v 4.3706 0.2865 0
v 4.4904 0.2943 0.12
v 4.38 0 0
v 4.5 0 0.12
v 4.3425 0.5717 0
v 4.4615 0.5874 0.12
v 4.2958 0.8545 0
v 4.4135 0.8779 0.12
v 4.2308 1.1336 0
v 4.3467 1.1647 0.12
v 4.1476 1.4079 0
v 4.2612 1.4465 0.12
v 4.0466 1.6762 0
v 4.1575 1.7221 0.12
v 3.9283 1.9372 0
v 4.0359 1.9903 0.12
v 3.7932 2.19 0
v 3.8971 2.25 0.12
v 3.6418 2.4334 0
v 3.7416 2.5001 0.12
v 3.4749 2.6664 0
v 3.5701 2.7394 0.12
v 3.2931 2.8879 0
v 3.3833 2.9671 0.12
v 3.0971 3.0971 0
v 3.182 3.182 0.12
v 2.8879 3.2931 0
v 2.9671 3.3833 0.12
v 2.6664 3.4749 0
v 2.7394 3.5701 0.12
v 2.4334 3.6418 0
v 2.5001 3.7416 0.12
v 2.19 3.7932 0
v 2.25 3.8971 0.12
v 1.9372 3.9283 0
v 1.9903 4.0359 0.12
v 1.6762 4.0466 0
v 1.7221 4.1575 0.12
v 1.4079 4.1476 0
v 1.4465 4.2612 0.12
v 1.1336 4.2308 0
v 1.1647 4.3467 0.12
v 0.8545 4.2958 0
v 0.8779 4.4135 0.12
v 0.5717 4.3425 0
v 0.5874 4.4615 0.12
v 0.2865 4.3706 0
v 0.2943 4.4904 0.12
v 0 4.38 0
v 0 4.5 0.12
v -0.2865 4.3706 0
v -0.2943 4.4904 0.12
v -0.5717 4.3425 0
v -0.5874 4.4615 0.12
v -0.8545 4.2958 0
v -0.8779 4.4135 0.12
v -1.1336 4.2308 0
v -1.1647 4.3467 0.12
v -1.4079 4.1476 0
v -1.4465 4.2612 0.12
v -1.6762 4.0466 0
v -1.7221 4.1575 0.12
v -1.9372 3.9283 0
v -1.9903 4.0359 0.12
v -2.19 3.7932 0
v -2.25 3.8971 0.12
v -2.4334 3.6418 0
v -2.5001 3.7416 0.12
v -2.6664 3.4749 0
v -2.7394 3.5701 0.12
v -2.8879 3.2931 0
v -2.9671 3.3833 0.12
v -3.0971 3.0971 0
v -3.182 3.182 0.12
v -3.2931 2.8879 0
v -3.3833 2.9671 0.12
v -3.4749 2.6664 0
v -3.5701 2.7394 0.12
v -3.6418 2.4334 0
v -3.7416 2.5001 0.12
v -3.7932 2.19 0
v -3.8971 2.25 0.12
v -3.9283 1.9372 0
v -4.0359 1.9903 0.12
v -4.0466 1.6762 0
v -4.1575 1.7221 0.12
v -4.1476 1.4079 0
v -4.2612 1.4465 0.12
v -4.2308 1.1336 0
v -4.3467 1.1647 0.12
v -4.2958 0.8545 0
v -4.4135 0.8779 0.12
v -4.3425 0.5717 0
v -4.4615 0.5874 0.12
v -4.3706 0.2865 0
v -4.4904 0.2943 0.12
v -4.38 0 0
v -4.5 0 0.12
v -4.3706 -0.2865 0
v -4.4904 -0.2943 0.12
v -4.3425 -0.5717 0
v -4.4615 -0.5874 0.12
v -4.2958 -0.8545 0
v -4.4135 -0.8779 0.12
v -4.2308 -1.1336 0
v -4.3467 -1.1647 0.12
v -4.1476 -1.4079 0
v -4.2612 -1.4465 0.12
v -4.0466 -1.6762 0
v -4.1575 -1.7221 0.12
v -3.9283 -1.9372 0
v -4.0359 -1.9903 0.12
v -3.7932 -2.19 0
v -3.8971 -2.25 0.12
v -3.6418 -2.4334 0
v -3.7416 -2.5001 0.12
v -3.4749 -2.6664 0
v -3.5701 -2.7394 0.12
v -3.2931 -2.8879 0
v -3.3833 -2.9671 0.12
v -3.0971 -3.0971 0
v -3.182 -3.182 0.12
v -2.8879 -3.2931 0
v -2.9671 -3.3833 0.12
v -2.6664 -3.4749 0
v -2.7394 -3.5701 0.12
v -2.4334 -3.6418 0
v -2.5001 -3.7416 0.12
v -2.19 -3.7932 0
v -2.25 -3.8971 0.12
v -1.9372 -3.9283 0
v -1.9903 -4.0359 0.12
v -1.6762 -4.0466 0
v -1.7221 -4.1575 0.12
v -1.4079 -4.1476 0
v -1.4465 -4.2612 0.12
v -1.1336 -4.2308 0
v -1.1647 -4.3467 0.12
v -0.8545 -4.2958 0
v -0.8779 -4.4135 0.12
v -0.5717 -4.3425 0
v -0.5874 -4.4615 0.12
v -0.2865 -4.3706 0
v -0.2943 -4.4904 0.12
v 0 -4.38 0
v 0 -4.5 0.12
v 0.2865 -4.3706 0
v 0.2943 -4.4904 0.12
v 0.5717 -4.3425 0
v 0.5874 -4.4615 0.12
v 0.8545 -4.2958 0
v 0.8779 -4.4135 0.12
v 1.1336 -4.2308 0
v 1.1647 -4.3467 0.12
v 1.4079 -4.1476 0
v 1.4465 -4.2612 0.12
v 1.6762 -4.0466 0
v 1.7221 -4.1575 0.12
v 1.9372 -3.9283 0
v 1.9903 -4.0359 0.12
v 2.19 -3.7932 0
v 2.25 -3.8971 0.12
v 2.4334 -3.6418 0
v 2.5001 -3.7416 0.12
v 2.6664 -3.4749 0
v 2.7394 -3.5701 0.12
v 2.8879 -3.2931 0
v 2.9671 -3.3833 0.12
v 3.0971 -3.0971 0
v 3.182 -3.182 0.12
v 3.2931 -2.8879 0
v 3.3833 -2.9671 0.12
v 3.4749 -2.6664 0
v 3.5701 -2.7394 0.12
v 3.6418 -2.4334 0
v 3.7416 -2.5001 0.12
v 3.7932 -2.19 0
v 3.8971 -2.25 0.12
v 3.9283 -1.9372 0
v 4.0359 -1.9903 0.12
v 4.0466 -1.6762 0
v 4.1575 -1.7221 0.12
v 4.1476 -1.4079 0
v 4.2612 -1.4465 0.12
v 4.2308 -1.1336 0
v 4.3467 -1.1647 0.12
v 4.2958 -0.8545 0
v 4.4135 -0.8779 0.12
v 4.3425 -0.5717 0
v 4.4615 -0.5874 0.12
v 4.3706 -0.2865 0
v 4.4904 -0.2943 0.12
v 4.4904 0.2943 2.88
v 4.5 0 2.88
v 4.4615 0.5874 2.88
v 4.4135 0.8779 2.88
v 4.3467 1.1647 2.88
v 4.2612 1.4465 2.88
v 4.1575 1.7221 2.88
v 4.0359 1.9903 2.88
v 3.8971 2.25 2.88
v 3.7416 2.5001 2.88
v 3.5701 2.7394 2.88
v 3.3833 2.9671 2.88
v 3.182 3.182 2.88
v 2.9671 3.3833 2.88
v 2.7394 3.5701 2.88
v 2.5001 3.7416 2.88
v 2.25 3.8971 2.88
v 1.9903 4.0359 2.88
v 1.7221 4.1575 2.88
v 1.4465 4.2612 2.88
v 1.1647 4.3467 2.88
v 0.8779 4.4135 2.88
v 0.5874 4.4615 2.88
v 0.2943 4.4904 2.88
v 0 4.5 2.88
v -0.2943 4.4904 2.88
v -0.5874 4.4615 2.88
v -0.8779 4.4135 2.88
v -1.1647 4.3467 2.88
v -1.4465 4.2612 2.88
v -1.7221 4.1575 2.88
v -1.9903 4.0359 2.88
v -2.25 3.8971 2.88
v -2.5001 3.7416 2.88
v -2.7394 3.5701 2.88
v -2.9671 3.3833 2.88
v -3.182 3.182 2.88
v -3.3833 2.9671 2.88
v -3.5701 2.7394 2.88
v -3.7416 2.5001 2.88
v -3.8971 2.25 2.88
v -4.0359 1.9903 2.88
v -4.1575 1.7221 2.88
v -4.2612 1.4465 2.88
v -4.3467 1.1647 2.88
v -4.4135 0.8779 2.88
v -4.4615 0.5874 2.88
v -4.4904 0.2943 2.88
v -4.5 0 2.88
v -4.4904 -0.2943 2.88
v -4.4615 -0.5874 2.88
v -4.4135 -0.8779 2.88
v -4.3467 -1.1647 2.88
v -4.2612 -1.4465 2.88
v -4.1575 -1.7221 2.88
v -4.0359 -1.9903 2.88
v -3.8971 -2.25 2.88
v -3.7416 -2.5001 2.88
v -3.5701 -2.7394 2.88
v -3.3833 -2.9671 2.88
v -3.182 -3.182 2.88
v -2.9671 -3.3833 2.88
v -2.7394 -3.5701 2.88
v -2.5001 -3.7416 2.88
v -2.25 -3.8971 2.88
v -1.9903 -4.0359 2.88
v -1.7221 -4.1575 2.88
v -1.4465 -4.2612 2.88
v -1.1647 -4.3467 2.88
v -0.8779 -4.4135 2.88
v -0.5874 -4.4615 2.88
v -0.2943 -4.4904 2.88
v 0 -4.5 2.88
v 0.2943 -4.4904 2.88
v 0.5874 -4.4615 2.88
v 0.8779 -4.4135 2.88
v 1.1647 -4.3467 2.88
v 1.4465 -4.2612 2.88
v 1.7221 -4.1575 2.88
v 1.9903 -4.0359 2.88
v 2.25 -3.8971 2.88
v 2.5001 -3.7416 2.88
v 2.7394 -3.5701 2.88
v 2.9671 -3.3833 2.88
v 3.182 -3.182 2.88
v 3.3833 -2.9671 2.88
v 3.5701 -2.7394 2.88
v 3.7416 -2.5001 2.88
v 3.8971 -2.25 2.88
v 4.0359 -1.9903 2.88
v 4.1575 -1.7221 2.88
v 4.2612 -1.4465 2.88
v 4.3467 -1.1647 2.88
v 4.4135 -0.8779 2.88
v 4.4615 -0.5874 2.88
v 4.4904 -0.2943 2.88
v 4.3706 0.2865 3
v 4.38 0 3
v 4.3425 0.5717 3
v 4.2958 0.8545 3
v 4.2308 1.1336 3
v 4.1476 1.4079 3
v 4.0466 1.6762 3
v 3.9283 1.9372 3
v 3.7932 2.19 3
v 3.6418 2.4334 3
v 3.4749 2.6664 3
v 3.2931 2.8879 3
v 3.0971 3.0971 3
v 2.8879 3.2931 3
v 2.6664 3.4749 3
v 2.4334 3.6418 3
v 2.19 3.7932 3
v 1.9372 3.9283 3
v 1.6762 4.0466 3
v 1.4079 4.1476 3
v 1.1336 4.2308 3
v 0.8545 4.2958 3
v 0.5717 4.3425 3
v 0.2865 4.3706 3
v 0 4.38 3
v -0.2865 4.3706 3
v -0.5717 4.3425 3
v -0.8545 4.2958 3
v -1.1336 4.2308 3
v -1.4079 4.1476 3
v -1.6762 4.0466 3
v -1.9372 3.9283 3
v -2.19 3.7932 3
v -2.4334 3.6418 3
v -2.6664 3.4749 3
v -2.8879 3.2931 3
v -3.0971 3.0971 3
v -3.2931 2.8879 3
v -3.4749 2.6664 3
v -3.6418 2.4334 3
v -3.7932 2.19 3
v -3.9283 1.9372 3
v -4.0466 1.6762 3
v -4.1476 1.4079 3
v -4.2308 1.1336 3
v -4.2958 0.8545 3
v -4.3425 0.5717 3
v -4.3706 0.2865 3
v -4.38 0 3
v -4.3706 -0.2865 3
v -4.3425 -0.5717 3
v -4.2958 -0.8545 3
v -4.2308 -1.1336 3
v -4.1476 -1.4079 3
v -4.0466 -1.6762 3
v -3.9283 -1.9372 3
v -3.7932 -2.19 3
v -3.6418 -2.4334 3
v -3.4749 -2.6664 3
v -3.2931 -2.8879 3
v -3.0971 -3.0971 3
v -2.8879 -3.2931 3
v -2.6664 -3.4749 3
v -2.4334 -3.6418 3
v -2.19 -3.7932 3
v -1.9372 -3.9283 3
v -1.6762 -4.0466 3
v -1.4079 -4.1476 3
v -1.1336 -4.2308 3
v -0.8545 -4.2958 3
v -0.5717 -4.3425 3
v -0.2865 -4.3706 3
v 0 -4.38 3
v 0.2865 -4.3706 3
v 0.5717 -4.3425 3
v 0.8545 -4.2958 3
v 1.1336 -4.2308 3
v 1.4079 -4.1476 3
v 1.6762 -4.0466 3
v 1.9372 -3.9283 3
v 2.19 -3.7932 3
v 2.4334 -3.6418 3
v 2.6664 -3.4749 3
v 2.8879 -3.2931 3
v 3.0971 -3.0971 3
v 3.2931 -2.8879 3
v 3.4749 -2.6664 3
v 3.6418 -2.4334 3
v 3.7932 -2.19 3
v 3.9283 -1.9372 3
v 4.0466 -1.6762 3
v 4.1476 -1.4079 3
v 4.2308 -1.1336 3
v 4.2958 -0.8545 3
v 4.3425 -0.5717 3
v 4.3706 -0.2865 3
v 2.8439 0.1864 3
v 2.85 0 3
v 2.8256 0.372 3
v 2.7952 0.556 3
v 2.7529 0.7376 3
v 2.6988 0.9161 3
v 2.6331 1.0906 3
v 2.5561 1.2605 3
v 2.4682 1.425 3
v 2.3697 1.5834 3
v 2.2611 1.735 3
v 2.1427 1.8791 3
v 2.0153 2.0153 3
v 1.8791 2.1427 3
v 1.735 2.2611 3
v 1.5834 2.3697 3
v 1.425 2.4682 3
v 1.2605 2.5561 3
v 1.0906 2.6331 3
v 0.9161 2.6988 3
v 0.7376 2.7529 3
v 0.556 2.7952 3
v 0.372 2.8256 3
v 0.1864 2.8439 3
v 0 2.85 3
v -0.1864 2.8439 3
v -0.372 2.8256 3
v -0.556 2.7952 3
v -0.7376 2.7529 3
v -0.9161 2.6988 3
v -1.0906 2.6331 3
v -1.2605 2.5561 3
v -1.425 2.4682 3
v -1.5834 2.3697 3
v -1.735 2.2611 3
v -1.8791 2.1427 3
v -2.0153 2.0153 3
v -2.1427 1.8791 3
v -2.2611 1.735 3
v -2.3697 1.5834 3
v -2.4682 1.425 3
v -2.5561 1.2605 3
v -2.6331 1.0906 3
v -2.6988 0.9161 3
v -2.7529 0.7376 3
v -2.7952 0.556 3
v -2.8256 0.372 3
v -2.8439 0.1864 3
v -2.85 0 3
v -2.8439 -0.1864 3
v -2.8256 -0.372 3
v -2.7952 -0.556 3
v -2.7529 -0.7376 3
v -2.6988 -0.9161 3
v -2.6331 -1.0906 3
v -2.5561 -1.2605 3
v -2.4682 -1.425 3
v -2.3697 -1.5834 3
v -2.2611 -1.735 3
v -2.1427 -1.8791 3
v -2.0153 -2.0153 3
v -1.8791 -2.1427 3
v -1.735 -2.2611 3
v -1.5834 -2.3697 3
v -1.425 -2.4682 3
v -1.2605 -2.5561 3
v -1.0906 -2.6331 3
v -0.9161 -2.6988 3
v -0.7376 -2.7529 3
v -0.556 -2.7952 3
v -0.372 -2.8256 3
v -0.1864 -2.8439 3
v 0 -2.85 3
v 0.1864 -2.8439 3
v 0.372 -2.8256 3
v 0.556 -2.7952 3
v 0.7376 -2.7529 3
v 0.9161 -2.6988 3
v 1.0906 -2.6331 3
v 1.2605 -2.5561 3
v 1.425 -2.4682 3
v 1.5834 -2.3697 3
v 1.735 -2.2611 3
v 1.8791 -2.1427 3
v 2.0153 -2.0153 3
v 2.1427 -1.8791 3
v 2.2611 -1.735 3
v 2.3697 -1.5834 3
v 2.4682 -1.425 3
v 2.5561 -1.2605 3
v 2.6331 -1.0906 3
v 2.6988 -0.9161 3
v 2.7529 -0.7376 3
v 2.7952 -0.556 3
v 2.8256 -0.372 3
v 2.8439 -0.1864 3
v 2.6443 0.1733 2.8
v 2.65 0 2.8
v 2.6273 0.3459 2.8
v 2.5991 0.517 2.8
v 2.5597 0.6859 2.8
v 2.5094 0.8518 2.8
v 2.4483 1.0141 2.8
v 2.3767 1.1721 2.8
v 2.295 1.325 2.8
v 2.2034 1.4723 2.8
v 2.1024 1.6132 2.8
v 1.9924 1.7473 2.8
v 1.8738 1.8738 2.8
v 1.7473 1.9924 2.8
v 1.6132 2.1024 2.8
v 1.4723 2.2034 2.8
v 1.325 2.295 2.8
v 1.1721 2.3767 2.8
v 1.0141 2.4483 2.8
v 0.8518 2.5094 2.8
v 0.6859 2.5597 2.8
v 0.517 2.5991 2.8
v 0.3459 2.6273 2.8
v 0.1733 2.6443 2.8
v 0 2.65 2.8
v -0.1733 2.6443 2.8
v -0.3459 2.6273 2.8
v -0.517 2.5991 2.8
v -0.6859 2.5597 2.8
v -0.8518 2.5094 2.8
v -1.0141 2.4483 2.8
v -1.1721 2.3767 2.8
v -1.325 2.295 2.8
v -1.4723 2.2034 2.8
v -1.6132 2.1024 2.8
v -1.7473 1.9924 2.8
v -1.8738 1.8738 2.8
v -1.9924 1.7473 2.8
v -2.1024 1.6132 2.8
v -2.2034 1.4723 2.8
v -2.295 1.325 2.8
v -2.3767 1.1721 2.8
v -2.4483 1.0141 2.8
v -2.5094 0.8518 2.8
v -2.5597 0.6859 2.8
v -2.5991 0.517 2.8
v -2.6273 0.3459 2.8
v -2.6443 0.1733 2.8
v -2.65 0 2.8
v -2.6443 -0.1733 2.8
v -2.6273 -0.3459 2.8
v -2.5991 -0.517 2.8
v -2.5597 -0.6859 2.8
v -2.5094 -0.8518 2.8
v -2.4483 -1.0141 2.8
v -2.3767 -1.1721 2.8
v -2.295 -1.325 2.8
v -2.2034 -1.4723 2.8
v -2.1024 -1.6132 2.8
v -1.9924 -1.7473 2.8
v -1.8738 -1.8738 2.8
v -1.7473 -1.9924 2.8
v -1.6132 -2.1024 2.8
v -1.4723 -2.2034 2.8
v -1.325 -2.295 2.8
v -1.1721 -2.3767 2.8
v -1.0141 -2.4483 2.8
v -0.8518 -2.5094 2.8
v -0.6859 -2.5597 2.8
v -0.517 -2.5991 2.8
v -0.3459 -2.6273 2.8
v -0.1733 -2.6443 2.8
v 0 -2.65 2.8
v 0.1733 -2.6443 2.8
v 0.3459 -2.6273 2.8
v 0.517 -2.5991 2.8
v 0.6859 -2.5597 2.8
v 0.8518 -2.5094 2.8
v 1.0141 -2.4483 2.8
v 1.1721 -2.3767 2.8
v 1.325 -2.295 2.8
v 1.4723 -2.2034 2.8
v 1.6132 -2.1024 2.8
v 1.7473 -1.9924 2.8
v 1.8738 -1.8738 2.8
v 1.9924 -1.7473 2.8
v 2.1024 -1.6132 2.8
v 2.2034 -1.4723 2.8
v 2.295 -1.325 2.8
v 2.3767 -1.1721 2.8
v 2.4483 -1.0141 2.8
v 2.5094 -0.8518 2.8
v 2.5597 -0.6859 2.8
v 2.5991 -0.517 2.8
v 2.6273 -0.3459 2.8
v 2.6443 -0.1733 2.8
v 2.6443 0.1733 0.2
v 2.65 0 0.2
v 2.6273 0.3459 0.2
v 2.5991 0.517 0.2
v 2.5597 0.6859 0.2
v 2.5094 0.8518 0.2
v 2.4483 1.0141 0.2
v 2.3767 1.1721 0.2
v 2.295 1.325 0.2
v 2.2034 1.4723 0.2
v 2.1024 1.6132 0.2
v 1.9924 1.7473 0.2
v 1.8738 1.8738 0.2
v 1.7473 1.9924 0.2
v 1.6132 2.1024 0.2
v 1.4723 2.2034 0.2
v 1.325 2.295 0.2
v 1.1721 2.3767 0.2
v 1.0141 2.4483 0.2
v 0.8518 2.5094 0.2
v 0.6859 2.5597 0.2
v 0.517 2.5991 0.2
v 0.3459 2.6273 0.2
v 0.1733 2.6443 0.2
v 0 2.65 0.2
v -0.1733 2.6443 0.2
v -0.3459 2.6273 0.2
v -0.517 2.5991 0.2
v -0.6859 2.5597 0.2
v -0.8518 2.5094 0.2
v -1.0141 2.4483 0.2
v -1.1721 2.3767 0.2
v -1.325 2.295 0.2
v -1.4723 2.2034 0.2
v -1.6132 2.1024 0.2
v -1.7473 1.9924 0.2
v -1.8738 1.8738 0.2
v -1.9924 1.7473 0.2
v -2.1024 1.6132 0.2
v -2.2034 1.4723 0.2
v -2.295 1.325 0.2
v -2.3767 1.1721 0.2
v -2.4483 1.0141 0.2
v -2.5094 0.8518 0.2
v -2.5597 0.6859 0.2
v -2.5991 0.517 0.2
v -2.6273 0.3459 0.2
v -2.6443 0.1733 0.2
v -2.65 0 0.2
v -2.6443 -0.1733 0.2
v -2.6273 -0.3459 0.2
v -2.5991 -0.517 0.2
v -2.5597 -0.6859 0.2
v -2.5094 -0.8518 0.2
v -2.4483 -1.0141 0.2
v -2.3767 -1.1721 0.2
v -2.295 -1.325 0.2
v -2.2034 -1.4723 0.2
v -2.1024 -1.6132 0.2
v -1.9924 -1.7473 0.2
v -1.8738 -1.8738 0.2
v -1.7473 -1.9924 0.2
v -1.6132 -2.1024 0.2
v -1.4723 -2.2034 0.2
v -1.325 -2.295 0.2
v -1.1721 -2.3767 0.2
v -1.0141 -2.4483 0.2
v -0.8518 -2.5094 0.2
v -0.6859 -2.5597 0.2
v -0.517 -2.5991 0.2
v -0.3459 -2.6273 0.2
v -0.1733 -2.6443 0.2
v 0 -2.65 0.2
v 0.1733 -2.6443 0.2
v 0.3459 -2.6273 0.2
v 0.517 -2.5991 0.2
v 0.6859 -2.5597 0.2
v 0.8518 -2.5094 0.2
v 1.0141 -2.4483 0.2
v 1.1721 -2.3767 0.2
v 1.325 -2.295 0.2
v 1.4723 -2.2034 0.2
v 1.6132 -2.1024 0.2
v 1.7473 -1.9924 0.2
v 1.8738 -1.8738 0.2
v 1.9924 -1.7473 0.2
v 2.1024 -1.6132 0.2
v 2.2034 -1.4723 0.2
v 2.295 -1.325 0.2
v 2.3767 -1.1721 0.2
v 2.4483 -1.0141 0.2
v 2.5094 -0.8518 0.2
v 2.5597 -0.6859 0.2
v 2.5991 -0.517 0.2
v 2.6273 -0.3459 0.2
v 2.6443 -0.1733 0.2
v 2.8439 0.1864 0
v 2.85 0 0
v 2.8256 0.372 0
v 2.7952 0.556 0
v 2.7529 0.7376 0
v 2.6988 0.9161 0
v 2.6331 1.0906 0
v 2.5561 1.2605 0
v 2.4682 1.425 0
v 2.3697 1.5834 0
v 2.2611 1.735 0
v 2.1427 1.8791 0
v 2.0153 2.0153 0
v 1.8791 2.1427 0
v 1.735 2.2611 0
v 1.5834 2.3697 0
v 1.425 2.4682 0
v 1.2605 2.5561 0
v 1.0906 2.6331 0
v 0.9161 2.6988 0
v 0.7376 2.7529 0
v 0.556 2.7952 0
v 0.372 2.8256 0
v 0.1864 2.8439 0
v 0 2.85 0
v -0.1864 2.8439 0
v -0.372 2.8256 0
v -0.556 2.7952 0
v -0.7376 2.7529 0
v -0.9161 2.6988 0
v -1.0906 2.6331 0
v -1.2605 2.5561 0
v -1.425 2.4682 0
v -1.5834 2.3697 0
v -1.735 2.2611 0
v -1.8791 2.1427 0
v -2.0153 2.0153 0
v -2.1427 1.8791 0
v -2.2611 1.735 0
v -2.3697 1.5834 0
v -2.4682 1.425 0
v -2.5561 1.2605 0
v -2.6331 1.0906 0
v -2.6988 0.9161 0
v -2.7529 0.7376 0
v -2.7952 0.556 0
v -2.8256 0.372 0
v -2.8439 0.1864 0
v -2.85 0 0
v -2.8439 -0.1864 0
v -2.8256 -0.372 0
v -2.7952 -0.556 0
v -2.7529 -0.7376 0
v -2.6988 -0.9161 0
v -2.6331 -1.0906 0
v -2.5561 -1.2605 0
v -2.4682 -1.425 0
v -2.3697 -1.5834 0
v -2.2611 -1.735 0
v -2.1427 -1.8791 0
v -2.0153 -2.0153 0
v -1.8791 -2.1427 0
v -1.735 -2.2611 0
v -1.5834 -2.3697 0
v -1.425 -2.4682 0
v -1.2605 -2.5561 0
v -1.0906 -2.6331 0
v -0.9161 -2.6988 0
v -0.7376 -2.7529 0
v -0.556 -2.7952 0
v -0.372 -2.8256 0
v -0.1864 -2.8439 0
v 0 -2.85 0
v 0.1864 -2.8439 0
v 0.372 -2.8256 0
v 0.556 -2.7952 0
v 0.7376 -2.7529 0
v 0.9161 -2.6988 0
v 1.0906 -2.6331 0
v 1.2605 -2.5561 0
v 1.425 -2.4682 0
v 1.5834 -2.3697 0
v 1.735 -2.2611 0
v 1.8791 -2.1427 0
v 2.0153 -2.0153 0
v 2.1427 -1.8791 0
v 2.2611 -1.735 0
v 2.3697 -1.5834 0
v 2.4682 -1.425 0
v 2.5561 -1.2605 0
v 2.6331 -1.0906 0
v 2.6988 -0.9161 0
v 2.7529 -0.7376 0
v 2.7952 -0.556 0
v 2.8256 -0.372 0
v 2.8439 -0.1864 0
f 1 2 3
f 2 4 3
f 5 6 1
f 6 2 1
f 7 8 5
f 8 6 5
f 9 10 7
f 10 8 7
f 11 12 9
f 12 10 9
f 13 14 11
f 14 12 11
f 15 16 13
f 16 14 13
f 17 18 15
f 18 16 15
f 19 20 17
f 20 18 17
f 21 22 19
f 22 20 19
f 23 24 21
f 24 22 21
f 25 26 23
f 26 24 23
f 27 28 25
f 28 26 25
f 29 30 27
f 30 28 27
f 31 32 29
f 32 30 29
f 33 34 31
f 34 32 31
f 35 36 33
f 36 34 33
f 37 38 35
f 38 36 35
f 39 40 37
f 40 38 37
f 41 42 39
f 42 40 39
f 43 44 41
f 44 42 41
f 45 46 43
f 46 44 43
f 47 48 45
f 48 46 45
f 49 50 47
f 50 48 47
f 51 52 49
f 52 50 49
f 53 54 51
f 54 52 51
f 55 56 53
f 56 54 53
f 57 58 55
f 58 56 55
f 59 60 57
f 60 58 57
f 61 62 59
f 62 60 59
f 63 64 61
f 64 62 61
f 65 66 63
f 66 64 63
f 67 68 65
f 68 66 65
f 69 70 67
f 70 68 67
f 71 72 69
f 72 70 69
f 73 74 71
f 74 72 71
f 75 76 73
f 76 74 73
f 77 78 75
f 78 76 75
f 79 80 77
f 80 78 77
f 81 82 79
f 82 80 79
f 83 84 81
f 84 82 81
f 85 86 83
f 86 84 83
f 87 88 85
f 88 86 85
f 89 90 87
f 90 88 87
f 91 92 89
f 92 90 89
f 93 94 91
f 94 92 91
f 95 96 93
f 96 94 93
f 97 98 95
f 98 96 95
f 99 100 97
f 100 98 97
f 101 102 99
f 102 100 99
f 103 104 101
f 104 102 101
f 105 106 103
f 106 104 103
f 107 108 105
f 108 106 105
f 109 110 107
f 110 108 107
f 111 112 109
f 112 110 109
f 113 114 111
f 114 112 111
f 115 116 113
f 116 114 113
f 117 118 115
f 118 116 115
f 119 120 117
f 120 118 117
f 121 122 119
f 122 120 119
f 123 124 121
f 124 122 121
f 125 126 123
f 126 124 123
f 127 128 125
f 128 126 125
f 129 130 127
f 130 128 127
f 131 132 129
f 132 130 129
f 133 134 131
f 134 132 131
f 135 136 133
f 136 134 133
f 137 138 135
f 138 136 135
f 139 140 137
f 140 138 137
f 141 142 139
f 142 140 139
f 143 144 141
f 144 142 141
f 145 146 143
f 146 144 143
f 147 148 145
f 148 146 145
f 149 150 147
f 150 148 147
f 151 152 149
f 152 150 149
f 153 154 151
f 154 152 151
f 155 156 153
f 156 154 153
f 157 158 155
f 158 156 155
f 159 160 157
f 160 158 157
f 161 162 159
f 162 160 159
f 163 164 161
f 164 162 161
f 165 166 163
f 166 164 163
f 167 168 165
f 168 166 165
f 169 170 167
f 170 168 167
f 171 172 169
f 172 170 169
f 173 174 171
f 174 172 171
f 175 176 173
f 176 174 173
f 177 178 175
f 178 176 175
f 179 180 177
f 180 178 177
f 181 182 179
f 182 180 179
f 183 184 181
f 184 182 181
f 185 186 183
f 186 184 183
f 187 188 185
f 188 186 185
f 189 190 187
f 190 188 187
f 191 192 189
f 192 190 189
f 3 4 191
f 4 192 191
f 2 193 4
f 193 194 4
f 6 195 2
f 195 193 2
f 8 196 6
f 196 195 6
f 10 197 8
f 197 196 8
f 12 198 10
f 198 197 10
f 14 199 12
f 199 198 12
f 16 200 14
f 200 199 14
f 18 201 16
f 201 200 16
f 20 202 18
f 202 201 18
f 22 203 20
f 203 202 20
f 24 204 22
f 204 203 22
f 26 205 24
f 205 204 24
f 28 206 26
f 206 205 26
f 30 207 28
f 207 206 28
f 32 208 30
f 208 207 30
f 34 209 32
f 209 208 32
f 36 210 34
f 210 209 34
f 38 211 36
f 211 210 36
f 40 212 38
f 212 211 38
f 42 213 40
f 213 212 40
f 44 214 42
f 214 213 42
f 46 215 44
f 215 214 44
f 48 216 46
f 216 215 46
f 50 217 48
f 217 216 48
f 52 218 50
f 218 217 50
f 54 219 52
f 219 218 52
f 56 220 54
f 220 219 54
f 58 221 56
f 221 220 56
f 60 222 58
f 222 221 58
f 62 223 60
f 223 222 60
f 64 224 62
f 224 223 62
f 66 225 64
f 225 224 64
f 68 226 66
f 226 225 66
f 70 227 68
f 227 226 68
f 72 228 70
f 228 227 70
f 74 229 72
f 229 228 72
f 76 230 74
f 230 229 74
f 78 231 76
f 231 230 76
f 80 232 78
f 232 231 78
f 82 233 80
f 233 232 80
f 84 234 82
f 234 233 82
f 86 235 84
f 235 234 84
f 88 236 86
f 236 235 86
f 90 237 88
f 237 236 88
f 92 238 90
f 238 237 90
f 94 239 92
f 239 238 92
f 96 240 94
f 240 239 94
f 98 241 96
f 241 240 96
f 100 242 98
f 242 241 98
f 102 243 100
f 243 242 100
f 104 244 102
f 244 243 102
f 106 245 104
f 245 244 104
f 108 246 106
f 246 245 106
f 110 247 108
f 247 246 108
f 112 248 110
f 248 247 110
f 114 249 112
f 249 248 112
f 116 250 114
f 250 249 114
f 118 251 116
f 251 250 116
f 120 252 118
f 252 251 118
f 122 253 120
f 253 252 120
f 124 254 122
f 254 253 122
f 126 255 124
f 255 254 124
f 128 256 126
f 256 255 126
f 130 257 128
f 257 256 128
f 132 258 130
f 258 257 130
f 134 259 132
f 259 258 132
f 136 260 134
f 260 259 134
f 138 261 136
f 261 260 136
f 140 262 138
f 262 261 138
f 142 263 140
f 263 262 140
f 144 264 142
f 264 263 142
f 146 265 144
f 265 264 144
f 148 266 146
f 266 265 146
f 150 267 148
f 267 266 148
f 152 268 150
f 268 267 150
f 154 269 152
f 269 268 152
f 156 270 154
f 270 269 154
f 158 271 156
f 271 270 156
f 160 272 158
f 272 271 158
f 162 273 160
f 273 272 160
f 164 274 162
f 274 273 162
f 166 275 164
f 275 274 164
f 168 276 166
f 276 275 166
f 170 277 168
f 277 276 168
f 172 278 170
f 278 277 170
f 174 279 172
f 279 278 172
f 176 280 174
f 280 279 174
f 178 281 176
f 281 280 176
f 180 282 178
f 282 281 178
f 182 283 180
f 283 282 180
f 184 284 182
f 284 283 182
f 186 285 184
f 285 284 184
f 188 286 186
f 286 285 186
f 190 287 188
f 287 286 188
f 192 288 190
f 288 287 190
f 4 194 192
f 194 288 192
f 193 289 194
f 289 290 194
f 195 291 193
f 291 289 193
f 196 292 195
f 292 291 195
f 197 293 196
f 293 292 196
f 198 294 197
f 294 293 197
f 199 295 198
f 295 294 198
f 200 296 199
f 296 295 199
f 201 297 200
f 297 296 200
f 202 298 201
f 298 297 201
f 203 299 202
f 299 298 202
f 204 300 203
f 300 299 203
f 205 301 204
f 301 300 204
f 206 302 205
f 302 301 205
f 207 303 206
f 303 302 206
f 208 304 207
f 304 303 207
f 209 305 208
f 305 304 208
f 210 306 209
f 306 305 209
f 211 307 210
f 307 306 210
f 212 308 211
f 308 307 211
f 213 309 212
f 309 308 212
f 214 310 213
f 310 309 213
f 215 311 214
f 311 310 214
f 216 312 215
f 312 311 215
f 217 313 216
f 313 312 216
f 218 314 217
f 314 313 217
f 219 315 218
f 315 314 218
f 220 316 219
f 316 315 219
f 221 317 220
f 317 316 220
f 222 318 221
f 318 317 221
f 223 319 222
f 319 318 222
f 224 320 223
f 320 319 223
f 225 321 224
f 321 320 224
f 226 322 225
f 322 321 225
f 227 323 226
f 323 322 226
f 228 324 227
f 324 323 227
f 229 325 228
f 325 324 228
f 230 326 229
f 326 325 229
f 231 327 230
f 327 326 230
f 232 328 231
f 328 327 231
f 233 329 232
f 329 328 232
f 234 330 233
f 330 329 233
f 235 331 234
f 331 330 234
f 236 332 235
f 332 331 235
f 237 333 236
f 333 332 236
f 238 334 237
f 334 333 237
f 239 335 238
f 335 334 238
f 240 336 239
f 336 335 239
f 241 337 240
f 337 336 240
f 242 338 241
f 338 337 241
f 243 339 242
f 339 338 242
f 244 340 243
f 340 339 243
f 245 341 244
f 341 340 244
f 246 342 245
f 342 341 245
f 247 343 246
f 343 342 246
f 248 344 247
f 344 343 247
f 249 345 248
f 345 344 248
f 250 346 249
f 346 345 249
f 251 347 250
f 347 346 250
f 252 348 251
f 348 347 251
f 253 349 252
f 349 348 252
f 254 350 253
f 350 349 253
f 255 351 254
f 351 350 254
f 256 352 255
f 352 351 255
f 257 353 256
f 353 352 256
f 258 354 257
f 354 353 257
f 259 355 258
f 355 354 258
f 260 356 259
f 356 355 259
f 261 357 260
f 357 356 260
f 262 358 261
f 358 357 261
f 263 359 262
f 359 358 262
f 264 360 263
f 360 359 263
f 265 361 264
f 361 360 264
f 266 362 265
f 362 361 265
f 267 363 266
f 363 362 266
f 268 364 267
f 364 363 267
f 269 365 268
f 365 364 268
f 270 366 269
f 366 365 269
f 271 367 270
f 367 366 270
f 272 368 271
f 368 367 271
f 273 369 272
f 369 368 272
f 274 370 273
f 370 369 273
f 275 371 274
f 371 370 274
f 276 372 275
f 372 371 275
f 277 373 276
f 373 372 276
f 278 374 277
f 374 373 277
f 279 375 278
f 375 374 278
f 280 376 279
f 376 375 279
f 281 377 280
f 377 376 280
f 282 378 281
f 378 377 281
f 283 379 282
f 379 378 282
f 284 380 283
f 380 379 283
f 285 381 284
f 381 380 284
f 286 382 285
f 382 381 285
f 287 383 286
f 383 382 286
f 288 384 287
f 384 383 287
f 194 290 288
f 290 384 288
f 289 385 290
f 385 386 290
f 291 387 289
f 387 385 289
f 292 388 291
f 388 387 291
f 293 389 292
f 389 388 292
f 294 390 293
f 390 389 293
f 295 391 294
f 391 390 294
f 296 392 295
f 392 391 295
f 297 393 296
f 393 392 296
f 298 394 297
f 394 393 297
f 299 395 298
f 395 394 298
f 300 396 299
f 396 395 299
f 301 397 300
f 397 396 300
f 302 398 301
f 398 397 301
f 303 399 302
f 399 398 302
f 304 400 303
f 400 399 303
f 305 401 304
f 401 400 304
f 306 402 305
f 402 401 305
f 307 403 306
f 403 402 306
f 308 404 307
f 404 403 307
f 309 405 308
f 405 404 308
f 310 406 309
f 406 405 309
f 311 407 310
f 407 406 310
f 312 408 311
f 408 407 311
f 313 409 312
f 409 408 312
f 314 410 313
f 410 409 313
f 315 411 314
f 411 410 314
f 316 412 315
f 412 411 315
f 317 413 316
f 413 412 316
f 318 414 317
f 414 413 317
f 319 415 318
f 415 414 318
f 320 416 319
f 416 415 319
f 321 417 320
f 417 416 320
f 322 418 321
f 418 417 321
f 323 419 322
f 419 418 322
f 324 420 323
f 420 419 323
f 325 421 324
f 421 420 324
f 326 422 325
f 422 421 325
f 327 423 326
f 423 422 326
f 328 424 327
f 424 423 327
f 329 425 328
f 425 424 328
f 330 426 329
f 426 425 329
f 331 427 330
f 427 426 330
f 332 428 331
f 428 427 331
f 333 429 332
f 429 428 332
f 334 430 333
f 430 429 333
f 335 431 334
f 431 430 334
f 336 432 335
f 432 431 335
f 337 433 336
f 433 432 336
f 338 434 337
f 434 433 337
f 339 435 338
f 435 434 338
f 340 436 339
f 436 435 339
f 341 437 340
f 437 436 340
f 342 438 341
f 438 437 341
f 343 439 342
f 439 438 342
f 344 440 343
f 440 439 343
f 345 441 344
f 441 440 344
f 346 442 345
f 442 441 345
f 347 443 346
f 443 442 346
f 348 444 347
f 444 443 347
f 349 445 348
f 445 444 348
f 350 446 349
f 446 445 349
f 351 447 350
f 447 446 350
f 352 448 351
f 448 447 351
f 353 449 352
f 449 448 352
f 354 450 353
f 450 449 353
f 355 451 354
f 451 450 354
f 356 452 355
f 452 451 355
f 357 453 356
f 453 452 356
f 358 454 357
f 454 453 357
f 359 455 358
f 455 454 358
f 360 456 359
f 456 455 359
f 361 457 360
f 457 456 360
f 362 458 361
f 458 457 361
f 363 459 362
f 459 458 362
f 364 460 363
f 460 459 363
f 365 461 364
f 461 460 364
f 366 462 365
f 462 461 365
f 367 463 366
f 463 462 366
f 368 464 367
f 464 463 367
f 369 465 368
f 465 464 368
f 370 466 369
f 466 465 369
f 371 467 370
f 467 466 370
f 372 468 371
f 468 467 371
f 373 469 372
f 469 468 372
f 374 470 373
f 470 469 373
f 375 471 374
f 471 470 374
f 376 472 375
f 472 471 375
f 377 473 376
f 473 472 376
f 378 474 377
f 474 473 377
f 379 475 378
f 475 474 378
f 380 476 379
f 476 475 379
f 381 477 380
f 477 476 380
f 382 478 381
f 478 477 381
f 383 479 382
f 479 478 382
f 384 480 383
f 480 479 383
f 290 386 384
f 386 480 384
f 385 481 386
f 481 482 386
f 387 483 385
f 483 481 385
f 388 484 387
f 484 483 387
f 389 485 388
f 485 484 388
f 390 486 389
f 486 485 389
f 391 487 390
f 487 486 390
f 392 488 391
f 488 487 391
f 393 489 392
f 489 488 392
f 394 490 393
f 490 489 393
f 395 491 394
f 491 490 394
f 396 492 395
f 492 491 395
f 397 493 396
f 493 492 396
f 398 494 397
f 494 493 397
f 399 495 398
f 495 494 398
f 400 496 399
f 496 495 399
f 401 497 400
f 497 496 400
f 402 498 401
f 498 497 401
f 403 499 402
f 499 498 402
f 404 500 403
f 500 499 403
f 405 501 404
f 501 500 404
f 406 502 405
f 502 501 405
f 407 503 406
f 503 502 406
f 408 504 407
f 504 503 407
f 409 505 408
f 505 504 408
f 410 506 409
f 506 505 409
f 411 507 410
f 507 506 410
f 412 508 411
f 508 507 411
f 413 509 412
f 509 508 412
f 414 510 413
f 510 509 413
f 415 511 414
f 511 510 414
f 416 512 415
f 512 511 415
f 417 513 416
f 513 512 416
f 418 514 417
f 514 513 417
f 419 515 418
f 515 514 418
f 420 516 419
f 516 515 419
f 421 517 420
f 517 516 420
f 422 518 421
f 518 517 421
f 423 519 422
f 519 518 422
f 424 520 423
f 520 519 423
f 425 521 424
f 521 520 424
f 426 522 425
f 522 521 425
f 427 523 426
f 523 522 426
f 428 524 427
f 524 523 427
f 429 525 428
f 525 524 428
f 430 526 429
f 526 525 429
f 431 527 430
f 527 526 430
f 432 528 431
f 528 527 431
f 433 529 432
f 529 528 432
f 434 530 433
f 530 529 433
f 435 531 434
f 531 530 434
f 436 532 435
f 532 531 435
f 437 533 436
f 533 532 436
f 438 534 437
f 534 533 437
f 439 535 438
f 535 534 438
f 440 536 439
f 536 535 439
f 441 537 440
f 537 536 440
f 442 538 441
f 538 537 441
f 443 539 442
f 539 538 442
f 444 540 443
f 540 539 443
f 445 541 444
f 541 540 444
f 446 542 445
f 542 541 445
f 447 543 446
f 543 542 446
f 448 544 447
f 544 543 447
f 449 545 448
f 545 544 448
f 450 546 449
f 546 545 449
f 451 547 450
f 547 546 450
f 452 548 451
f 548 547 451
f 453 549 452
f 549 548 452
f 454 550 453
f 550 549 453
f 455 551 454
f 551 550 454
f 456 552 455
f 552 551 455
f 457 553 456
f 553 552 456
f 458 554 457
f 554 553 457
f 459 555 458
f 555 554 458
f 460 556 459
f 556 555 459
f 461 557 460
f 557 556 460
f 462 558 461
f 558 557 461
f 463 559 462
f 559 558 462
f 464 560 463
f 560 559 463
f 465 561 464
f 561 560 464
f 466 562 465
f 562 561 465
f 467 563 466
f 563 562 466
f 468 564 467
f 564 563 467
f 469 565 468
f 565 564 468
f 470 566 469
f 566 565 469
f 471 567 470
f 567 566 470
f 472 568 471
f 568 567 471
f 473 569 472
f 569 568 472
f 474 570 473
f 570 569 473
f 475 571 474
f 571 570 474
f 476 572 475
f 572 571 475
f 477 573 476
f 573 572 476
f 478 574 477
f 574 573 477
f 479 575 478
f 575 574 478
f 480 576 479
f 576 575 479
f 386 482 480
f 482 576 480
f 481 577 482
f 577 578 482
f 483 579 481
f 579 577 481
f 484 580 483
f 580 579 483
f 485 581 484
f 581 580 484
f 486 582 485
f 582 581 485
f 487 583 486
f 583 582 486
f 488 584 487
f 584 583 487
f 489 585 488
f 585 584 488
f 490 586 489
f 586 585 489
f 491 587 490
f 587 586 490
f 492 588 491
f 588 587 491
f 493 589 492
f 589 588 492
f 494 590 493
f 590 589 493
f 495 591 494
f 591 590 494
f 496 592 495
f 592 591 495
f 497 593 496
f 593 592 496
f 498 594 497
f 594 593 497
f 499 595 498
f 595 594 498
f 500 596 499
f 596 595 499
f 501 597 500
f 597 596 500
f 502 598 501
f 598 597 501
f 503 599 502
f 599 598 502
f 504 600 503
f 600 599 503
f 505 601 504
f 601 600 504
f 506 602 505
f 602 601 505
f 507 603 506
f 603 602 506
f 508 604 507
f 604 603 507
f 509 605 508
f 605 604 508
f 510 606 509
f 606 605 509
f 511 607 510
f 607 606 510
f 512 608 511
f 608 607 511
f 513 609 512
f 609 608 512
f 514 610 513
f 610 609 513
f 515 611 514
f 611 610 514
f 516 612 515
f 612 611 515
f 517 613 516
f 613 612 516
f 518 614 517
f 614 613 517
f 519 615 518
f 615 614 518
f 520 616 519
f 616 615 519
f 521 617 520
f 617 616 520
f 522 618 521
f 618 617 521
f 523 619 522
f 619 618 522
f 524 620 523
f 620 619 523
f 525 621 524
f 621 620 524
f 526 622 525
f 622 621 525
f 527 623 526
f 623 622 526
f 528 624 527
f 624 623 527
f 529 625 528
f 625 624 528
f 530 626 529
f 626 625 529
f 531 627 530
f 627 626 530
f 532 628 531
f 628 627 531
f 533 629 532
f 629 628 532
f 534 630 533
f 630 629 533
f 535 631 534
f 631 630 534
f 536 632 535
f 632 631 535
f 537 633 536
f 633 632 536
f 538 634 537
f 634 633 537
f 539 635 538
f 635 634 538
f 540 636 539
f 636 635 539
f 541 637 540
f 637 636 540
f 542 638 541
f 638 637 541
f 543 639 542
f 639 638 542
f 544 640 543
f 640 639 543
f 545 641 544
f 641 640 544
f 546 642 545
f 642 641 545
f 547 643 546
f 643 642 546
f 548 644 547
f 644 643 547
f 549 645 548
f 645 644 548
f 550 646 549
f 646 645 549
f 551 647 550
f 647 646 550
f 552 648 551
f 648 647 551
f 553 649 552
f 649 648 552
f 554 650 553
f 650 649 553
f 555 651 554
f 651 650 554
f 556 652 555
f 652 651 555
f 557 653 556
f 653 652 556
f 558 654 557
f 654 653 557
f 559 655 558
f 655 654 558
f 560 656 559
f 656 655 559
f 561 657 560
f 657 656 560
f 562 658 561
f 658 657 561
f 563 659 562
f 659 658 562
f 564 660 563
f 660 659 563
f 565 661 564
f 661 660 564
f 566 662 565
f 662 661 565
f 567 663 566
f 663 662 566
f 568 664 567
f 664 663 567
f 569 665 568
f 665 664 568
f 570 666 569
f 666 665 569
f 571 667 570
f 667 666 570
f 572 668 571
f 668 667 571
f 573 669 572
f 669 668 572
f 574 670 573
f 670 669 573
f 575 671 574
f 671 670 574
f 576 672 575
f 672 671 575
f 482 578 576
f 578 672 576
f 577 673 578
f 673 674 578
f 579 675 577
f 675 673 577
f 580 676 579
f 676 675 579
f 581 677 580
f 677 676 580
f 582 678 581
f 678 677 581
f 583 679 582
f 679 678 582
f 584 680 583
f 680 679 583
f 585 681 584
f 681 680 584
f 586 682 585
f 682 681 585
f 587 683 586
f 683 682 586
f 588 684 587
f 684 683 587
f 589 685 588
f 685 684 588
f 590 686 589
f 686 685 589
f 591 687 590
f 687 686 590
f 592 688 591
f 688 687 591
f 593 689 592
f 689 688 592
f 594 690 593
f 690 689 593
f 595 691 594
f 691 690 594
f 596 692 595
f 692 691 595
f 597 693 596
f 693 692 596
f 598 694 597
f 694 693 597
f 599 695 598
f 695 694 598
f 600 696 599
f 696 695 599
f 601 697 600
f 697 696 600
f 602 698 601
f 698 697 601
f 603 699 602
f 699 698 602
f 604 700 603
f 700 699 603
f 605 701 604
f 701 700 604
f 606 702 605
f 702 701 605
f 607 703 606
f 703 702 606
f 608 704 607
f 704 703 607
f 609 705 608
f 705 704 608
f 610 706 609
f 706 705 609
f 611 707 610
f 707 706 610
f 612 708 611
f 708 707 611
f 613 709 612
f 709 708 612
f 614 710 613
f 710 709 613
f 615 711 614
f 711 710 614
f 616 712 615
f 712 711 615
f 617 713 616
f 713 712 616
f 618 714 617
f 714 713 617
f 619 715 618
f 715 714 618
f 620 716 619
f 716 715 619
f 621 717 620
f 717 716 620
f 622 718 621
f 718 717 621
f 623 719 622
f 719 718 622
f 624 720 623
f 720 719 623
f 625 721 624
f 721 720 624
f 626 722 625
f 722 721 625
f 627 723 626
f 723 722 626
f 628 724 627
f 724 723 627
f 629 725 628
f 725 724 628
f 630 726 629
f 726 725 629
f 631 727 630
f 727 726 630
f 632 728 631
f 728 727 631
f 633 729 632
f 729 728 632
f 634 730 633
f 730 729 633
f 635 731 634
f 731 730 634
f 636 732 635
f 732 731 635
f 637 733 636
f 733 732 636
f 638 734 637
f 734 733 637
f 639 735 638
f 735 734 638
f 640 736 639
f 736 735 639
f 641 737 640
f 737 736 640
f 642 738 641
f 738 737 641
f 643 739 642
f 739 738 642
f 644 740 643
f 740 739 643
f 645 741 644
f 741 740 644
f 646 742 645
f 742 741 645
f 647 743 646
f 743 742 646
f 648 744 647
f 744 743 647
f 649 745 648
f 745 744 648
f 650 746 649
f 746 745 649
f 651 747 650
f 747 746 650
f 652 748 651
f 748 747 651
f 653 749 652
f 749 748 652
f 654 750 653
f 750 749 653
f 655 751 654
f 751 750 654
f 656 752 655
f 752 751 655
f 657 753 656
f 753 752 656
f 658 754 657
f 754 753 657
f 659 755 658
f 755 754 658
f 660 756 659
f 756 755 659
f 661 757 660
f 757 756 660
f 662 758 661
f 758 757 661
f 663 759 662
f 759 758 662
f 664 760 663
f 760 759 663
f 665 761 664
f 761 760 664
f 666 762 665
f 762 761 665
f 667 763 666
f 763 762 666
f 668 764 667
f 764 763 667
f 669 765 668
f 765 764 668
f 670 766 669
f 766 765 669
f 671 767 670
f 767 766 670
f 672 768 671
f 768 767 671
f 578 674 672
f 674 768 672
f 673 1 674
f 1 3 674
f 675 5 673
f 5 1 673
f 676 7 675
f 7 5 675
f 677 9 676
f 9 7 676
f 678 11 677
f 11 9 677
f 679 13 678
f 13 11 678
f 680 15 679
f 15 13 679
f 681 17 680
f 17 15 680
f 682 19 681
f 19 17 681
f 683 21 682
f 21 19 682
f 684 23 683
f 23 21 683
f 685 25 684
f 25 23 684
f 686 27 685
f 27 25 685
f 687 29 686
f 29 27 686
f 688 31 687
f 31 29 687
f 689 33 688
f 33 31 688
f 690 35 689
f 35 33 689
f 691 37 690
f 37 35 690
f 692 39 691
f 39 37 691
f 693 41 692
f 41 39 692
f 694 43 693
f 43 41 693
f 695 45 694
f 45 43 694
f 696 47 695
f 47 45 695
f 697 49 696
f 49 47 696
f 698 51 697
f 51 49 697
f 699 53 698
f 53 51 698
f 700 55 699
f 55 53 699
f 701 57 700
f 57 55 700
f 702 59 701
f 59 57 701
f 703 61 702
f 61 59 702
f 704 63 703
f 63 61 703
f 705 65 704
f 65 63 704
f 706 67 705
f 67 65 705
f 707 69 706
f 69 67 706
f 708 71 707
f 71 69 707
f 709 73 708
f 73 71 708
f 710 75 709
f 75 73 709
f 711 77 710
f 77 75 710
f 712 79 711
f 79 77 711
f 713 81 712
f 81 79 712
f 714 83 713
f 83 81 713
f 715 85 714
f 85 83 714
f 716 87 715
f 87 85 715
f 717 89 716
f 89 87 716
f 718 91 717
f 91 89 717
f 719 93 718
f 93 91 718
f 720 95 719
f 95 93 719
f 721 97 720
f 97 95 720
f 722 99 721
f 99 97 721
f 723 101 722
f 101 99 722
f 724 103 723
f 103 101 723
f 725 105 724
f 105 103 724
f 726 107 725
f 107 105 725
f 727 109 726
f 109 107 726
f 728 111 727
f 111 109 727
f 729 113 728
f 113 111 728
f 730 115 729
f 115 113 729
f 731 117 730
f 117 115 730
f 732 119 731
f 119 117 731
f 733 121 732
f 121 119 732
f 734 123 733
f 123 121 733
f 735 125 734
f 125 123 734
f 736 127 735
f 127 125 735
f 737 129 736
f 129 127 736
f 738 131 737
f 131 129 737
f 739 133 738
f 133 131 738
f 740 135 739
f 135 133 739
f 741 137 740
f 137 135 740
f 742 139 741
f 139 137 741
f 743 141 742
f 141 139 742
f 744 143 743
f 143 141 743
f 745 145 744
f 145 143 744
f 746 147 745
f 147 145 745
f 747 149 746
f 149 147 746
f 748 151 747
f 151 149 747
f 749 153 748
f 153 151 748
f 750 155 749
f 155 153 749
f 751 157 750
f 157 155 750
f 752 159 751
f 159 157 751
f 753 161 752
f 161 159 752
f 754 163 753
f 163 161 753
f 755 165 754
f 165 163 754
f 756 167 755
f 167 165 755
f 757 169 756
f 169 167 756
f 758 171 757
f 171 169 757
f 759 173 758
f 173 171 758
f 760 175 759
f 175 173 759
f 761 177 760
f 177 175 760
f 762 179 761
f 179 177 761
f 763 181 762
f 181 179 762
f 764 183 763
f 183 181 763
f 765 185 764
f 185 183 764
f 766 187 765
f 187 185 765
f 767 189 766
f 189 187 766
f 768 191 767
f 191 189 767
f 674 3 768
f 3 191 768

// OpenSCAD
// OOMP generic catalogue model; units: mm.
// Stud length is additional to body depth. Tapping depths are model assumptions.
variant = "full"; // [full, display]
family = "spacer";
connection_type = "plain";
depth_mm = 3;
stud_length_mm = 0;
tapped_depth_mm = 0;
bore_mm = 5.3;
outer_diameter_mm = 9;
across_flats_mm = 6;
thread_nominal_diameter_mm = 3;
thread_pitch_mm = 0.5;
edge_chamfer_mm = 0.12;
mouth_chamfer_mm = 0.2;
angular_segments = 96;
samples_per_pitch = 16;

// Boundary travels up the outside, then down any tapped/plain bore.
// Equal-height rings at shoulders form the annular shoulder faces.
n = angular_segments;
threaded = family == "standoff";
has_stud = connection_type == "stud_to_tapped" || connection_type == "stud_to_stud";
two_studs = connection_type == "stud_to_stud";
through = !threaded || connection_type == "tapped_to_tapped";
pitch = thread_pitch_mm;
diameter = threaded ? thread_nominal_diameter_mm : bore_mm;
minor = diameter - 5*sqrt(3)*pitch/8;
transition = mouth_chamfer_mm + (threaded ? 5*sqrt(3)*pitch/16 : 0);
tip_chamfer = mouth_chamfer_mm + 17*sqrt(3)*pitch/48;
function sorted(v) = len(v)<=1 ? v : let(p=v[0])
    concat(sorted([for(x=v) if(x<p-1e-8) x]), [p], sorted([for(x=v) if(x>p+1e-8) x]));
function reverse(v) = [for(i=[len(v)-1:-1:0]) v[i]];
function theta(i) = i*360/n;
function fract(x) = x-floor(x);
function phase_distance(i,z) = abs(fract(z/pitch-theta(i)/360+0.5)-0.5);
function thread_r(i,z) = minor/2 + min(5*sqrt(3)*pitch/16,
    max(0,(phase_distance(i,z)-0.125)*pitch*sqrt(3)));
function stud_r(i,z,tip) = min(diameter/2 - (variant=="full" ?
    min(17*sqrt(3)*pitch/48,max(0,(phase_distance(i,z)-0.0625)*pitch*sqrt(3))) : 0),
    diameter/2-tip_chamfer+abs(z-tip));
function body_r(i,z) = (threaded ? across_flats_mm/2/cos(theta(i)%60-30) : outer_diameter_mm/2)
    - max(0,edge_chamfer_mm-min(z,depth_mm-z));
function bore_r(i,z) = max(threaded ? (variant=="full" ? thread_r(i,z) : minor/2) : diameter/2,
    diameter/2+mouth_chamfer_mm-(through ? min(z,depth_mm-z) : depth_mm-z));
function stud_z(a,b,tip) = let(count=variant=="full" ? ceil(stud_length_mm/pitch*samples_per_pitch) : 1)
    sorted(concat([for(i=[0:count]) a+(b-a)*i/count], [tip==a ? tip+tip_chamfer : tip-tip_chamfer]));
body_z = sorted([0,edge_chamfer_mm,depth_mm-edge_chamfer_mm,depth_mm]);
low = through ? 0 : depth_mm-tapped_depth_mm;
count = threaded && variant=="full" ? ceil((depth_mm-low)/pitch*samples_per_pitch) : 1;
bore_z = two_studs ? [] : reverse(sorted(concat(
    [for(i=[0:count]) low+(depth_mm-low)*i/count],
    [depth_mm-mouth_chamfer_mm,depth_mm-transition],
    through ? [mouth_chamfer_mm,transition] : [])));
// Ring descriptors: [height, kind, tip]. Kind: 0 body, 1 stud, 2 bore.
rings = concat(
    has_stud ? [for(z=stud_z(-stud_length_mm,0,-stud_length_mm)) [z,1,-stud_length_mm]] : [],
    [for(z=body_z) [z,0,0]],
    two_studs ? [for(z=stud_z(depth_mm,depth_mm+stud_length_mm,depth_mm+stud_length_mm)) [z,1,depth_mm+stud_length_mm]] : [],
    [for(z=bore_z) [z,2,0]]);
function radius(i,ring) = ring[1]==0 ? body_r(i,ring[0]) :
    ring[1]==1 ? stud_r(i,ring[0],ring[2]) : bore_r(i,ring[0]);
points = concat([for(ring=rings) for(i=[0:n-1])
    [radius(i,ring)*cos(theta(i)),radius(i,ring)*sin(theta(i)),ring[0]]],
    through ? [] : [[0,0,rings[0][0]],[0,0,rings[len(rings)-1][0]]]);
center = len(rings)*n;
last = (len(rings)-1)*n;
// OpenSCAD winding is opposite to STL winding.
faces = concat(
    [for(j=[0:len(rings)-(through ? 1 : 2)]) for(i=[0:n-1]) each
        let(a=j*n+i,b=j*n+(i+1)%n,c=((j+1)%len(rings))*n+(i+1)%n,d=((j+1)%len(rings))*n+i)
        [[a,c,b],[a,d,c]]],
    through ? [] : [for(i=[0:n-1]) each let(k=(i+1)%n)
        [[center,i,k],[center+1,last+k,last+i]]]);
assert(family=="spacer" || family=="standoff");
assert(!threaded || connection_type=="tapped_to_tapped" || has_stud);
assert(depth_mm>0 && diameter>0 && pitch>0);
assert(variant=="full" || variant=="display");
assert(n>=24 && n%12==0 && samples_per_pitch>=8);
assert(mouth_chamfer_mm>0 && mouth_chamfer_mm<depth_mm/2);
assert(edge_chamfer_mm>=0 && edge_chamfer_mm<depth_mm/2);
assert(diameter+4*max(mouth_chamfer_mm,edge_chamfer_mm) < (threaded ? across_flats_mm : outer_diameter_mm));
assert(!has_stud || stud_length_mm>2*mouth_chamfer_mm);
assert(!through || !threaded || 2*transition<depth_mm);
assert(connection_type!="stud_to_tapped" || (tapped_depth_mm>transition && tapped_depth_mm<depth_mm));
color([0.86,0.85,0.81]) polyhedron(points=points,faces=faces,convexity=20);
